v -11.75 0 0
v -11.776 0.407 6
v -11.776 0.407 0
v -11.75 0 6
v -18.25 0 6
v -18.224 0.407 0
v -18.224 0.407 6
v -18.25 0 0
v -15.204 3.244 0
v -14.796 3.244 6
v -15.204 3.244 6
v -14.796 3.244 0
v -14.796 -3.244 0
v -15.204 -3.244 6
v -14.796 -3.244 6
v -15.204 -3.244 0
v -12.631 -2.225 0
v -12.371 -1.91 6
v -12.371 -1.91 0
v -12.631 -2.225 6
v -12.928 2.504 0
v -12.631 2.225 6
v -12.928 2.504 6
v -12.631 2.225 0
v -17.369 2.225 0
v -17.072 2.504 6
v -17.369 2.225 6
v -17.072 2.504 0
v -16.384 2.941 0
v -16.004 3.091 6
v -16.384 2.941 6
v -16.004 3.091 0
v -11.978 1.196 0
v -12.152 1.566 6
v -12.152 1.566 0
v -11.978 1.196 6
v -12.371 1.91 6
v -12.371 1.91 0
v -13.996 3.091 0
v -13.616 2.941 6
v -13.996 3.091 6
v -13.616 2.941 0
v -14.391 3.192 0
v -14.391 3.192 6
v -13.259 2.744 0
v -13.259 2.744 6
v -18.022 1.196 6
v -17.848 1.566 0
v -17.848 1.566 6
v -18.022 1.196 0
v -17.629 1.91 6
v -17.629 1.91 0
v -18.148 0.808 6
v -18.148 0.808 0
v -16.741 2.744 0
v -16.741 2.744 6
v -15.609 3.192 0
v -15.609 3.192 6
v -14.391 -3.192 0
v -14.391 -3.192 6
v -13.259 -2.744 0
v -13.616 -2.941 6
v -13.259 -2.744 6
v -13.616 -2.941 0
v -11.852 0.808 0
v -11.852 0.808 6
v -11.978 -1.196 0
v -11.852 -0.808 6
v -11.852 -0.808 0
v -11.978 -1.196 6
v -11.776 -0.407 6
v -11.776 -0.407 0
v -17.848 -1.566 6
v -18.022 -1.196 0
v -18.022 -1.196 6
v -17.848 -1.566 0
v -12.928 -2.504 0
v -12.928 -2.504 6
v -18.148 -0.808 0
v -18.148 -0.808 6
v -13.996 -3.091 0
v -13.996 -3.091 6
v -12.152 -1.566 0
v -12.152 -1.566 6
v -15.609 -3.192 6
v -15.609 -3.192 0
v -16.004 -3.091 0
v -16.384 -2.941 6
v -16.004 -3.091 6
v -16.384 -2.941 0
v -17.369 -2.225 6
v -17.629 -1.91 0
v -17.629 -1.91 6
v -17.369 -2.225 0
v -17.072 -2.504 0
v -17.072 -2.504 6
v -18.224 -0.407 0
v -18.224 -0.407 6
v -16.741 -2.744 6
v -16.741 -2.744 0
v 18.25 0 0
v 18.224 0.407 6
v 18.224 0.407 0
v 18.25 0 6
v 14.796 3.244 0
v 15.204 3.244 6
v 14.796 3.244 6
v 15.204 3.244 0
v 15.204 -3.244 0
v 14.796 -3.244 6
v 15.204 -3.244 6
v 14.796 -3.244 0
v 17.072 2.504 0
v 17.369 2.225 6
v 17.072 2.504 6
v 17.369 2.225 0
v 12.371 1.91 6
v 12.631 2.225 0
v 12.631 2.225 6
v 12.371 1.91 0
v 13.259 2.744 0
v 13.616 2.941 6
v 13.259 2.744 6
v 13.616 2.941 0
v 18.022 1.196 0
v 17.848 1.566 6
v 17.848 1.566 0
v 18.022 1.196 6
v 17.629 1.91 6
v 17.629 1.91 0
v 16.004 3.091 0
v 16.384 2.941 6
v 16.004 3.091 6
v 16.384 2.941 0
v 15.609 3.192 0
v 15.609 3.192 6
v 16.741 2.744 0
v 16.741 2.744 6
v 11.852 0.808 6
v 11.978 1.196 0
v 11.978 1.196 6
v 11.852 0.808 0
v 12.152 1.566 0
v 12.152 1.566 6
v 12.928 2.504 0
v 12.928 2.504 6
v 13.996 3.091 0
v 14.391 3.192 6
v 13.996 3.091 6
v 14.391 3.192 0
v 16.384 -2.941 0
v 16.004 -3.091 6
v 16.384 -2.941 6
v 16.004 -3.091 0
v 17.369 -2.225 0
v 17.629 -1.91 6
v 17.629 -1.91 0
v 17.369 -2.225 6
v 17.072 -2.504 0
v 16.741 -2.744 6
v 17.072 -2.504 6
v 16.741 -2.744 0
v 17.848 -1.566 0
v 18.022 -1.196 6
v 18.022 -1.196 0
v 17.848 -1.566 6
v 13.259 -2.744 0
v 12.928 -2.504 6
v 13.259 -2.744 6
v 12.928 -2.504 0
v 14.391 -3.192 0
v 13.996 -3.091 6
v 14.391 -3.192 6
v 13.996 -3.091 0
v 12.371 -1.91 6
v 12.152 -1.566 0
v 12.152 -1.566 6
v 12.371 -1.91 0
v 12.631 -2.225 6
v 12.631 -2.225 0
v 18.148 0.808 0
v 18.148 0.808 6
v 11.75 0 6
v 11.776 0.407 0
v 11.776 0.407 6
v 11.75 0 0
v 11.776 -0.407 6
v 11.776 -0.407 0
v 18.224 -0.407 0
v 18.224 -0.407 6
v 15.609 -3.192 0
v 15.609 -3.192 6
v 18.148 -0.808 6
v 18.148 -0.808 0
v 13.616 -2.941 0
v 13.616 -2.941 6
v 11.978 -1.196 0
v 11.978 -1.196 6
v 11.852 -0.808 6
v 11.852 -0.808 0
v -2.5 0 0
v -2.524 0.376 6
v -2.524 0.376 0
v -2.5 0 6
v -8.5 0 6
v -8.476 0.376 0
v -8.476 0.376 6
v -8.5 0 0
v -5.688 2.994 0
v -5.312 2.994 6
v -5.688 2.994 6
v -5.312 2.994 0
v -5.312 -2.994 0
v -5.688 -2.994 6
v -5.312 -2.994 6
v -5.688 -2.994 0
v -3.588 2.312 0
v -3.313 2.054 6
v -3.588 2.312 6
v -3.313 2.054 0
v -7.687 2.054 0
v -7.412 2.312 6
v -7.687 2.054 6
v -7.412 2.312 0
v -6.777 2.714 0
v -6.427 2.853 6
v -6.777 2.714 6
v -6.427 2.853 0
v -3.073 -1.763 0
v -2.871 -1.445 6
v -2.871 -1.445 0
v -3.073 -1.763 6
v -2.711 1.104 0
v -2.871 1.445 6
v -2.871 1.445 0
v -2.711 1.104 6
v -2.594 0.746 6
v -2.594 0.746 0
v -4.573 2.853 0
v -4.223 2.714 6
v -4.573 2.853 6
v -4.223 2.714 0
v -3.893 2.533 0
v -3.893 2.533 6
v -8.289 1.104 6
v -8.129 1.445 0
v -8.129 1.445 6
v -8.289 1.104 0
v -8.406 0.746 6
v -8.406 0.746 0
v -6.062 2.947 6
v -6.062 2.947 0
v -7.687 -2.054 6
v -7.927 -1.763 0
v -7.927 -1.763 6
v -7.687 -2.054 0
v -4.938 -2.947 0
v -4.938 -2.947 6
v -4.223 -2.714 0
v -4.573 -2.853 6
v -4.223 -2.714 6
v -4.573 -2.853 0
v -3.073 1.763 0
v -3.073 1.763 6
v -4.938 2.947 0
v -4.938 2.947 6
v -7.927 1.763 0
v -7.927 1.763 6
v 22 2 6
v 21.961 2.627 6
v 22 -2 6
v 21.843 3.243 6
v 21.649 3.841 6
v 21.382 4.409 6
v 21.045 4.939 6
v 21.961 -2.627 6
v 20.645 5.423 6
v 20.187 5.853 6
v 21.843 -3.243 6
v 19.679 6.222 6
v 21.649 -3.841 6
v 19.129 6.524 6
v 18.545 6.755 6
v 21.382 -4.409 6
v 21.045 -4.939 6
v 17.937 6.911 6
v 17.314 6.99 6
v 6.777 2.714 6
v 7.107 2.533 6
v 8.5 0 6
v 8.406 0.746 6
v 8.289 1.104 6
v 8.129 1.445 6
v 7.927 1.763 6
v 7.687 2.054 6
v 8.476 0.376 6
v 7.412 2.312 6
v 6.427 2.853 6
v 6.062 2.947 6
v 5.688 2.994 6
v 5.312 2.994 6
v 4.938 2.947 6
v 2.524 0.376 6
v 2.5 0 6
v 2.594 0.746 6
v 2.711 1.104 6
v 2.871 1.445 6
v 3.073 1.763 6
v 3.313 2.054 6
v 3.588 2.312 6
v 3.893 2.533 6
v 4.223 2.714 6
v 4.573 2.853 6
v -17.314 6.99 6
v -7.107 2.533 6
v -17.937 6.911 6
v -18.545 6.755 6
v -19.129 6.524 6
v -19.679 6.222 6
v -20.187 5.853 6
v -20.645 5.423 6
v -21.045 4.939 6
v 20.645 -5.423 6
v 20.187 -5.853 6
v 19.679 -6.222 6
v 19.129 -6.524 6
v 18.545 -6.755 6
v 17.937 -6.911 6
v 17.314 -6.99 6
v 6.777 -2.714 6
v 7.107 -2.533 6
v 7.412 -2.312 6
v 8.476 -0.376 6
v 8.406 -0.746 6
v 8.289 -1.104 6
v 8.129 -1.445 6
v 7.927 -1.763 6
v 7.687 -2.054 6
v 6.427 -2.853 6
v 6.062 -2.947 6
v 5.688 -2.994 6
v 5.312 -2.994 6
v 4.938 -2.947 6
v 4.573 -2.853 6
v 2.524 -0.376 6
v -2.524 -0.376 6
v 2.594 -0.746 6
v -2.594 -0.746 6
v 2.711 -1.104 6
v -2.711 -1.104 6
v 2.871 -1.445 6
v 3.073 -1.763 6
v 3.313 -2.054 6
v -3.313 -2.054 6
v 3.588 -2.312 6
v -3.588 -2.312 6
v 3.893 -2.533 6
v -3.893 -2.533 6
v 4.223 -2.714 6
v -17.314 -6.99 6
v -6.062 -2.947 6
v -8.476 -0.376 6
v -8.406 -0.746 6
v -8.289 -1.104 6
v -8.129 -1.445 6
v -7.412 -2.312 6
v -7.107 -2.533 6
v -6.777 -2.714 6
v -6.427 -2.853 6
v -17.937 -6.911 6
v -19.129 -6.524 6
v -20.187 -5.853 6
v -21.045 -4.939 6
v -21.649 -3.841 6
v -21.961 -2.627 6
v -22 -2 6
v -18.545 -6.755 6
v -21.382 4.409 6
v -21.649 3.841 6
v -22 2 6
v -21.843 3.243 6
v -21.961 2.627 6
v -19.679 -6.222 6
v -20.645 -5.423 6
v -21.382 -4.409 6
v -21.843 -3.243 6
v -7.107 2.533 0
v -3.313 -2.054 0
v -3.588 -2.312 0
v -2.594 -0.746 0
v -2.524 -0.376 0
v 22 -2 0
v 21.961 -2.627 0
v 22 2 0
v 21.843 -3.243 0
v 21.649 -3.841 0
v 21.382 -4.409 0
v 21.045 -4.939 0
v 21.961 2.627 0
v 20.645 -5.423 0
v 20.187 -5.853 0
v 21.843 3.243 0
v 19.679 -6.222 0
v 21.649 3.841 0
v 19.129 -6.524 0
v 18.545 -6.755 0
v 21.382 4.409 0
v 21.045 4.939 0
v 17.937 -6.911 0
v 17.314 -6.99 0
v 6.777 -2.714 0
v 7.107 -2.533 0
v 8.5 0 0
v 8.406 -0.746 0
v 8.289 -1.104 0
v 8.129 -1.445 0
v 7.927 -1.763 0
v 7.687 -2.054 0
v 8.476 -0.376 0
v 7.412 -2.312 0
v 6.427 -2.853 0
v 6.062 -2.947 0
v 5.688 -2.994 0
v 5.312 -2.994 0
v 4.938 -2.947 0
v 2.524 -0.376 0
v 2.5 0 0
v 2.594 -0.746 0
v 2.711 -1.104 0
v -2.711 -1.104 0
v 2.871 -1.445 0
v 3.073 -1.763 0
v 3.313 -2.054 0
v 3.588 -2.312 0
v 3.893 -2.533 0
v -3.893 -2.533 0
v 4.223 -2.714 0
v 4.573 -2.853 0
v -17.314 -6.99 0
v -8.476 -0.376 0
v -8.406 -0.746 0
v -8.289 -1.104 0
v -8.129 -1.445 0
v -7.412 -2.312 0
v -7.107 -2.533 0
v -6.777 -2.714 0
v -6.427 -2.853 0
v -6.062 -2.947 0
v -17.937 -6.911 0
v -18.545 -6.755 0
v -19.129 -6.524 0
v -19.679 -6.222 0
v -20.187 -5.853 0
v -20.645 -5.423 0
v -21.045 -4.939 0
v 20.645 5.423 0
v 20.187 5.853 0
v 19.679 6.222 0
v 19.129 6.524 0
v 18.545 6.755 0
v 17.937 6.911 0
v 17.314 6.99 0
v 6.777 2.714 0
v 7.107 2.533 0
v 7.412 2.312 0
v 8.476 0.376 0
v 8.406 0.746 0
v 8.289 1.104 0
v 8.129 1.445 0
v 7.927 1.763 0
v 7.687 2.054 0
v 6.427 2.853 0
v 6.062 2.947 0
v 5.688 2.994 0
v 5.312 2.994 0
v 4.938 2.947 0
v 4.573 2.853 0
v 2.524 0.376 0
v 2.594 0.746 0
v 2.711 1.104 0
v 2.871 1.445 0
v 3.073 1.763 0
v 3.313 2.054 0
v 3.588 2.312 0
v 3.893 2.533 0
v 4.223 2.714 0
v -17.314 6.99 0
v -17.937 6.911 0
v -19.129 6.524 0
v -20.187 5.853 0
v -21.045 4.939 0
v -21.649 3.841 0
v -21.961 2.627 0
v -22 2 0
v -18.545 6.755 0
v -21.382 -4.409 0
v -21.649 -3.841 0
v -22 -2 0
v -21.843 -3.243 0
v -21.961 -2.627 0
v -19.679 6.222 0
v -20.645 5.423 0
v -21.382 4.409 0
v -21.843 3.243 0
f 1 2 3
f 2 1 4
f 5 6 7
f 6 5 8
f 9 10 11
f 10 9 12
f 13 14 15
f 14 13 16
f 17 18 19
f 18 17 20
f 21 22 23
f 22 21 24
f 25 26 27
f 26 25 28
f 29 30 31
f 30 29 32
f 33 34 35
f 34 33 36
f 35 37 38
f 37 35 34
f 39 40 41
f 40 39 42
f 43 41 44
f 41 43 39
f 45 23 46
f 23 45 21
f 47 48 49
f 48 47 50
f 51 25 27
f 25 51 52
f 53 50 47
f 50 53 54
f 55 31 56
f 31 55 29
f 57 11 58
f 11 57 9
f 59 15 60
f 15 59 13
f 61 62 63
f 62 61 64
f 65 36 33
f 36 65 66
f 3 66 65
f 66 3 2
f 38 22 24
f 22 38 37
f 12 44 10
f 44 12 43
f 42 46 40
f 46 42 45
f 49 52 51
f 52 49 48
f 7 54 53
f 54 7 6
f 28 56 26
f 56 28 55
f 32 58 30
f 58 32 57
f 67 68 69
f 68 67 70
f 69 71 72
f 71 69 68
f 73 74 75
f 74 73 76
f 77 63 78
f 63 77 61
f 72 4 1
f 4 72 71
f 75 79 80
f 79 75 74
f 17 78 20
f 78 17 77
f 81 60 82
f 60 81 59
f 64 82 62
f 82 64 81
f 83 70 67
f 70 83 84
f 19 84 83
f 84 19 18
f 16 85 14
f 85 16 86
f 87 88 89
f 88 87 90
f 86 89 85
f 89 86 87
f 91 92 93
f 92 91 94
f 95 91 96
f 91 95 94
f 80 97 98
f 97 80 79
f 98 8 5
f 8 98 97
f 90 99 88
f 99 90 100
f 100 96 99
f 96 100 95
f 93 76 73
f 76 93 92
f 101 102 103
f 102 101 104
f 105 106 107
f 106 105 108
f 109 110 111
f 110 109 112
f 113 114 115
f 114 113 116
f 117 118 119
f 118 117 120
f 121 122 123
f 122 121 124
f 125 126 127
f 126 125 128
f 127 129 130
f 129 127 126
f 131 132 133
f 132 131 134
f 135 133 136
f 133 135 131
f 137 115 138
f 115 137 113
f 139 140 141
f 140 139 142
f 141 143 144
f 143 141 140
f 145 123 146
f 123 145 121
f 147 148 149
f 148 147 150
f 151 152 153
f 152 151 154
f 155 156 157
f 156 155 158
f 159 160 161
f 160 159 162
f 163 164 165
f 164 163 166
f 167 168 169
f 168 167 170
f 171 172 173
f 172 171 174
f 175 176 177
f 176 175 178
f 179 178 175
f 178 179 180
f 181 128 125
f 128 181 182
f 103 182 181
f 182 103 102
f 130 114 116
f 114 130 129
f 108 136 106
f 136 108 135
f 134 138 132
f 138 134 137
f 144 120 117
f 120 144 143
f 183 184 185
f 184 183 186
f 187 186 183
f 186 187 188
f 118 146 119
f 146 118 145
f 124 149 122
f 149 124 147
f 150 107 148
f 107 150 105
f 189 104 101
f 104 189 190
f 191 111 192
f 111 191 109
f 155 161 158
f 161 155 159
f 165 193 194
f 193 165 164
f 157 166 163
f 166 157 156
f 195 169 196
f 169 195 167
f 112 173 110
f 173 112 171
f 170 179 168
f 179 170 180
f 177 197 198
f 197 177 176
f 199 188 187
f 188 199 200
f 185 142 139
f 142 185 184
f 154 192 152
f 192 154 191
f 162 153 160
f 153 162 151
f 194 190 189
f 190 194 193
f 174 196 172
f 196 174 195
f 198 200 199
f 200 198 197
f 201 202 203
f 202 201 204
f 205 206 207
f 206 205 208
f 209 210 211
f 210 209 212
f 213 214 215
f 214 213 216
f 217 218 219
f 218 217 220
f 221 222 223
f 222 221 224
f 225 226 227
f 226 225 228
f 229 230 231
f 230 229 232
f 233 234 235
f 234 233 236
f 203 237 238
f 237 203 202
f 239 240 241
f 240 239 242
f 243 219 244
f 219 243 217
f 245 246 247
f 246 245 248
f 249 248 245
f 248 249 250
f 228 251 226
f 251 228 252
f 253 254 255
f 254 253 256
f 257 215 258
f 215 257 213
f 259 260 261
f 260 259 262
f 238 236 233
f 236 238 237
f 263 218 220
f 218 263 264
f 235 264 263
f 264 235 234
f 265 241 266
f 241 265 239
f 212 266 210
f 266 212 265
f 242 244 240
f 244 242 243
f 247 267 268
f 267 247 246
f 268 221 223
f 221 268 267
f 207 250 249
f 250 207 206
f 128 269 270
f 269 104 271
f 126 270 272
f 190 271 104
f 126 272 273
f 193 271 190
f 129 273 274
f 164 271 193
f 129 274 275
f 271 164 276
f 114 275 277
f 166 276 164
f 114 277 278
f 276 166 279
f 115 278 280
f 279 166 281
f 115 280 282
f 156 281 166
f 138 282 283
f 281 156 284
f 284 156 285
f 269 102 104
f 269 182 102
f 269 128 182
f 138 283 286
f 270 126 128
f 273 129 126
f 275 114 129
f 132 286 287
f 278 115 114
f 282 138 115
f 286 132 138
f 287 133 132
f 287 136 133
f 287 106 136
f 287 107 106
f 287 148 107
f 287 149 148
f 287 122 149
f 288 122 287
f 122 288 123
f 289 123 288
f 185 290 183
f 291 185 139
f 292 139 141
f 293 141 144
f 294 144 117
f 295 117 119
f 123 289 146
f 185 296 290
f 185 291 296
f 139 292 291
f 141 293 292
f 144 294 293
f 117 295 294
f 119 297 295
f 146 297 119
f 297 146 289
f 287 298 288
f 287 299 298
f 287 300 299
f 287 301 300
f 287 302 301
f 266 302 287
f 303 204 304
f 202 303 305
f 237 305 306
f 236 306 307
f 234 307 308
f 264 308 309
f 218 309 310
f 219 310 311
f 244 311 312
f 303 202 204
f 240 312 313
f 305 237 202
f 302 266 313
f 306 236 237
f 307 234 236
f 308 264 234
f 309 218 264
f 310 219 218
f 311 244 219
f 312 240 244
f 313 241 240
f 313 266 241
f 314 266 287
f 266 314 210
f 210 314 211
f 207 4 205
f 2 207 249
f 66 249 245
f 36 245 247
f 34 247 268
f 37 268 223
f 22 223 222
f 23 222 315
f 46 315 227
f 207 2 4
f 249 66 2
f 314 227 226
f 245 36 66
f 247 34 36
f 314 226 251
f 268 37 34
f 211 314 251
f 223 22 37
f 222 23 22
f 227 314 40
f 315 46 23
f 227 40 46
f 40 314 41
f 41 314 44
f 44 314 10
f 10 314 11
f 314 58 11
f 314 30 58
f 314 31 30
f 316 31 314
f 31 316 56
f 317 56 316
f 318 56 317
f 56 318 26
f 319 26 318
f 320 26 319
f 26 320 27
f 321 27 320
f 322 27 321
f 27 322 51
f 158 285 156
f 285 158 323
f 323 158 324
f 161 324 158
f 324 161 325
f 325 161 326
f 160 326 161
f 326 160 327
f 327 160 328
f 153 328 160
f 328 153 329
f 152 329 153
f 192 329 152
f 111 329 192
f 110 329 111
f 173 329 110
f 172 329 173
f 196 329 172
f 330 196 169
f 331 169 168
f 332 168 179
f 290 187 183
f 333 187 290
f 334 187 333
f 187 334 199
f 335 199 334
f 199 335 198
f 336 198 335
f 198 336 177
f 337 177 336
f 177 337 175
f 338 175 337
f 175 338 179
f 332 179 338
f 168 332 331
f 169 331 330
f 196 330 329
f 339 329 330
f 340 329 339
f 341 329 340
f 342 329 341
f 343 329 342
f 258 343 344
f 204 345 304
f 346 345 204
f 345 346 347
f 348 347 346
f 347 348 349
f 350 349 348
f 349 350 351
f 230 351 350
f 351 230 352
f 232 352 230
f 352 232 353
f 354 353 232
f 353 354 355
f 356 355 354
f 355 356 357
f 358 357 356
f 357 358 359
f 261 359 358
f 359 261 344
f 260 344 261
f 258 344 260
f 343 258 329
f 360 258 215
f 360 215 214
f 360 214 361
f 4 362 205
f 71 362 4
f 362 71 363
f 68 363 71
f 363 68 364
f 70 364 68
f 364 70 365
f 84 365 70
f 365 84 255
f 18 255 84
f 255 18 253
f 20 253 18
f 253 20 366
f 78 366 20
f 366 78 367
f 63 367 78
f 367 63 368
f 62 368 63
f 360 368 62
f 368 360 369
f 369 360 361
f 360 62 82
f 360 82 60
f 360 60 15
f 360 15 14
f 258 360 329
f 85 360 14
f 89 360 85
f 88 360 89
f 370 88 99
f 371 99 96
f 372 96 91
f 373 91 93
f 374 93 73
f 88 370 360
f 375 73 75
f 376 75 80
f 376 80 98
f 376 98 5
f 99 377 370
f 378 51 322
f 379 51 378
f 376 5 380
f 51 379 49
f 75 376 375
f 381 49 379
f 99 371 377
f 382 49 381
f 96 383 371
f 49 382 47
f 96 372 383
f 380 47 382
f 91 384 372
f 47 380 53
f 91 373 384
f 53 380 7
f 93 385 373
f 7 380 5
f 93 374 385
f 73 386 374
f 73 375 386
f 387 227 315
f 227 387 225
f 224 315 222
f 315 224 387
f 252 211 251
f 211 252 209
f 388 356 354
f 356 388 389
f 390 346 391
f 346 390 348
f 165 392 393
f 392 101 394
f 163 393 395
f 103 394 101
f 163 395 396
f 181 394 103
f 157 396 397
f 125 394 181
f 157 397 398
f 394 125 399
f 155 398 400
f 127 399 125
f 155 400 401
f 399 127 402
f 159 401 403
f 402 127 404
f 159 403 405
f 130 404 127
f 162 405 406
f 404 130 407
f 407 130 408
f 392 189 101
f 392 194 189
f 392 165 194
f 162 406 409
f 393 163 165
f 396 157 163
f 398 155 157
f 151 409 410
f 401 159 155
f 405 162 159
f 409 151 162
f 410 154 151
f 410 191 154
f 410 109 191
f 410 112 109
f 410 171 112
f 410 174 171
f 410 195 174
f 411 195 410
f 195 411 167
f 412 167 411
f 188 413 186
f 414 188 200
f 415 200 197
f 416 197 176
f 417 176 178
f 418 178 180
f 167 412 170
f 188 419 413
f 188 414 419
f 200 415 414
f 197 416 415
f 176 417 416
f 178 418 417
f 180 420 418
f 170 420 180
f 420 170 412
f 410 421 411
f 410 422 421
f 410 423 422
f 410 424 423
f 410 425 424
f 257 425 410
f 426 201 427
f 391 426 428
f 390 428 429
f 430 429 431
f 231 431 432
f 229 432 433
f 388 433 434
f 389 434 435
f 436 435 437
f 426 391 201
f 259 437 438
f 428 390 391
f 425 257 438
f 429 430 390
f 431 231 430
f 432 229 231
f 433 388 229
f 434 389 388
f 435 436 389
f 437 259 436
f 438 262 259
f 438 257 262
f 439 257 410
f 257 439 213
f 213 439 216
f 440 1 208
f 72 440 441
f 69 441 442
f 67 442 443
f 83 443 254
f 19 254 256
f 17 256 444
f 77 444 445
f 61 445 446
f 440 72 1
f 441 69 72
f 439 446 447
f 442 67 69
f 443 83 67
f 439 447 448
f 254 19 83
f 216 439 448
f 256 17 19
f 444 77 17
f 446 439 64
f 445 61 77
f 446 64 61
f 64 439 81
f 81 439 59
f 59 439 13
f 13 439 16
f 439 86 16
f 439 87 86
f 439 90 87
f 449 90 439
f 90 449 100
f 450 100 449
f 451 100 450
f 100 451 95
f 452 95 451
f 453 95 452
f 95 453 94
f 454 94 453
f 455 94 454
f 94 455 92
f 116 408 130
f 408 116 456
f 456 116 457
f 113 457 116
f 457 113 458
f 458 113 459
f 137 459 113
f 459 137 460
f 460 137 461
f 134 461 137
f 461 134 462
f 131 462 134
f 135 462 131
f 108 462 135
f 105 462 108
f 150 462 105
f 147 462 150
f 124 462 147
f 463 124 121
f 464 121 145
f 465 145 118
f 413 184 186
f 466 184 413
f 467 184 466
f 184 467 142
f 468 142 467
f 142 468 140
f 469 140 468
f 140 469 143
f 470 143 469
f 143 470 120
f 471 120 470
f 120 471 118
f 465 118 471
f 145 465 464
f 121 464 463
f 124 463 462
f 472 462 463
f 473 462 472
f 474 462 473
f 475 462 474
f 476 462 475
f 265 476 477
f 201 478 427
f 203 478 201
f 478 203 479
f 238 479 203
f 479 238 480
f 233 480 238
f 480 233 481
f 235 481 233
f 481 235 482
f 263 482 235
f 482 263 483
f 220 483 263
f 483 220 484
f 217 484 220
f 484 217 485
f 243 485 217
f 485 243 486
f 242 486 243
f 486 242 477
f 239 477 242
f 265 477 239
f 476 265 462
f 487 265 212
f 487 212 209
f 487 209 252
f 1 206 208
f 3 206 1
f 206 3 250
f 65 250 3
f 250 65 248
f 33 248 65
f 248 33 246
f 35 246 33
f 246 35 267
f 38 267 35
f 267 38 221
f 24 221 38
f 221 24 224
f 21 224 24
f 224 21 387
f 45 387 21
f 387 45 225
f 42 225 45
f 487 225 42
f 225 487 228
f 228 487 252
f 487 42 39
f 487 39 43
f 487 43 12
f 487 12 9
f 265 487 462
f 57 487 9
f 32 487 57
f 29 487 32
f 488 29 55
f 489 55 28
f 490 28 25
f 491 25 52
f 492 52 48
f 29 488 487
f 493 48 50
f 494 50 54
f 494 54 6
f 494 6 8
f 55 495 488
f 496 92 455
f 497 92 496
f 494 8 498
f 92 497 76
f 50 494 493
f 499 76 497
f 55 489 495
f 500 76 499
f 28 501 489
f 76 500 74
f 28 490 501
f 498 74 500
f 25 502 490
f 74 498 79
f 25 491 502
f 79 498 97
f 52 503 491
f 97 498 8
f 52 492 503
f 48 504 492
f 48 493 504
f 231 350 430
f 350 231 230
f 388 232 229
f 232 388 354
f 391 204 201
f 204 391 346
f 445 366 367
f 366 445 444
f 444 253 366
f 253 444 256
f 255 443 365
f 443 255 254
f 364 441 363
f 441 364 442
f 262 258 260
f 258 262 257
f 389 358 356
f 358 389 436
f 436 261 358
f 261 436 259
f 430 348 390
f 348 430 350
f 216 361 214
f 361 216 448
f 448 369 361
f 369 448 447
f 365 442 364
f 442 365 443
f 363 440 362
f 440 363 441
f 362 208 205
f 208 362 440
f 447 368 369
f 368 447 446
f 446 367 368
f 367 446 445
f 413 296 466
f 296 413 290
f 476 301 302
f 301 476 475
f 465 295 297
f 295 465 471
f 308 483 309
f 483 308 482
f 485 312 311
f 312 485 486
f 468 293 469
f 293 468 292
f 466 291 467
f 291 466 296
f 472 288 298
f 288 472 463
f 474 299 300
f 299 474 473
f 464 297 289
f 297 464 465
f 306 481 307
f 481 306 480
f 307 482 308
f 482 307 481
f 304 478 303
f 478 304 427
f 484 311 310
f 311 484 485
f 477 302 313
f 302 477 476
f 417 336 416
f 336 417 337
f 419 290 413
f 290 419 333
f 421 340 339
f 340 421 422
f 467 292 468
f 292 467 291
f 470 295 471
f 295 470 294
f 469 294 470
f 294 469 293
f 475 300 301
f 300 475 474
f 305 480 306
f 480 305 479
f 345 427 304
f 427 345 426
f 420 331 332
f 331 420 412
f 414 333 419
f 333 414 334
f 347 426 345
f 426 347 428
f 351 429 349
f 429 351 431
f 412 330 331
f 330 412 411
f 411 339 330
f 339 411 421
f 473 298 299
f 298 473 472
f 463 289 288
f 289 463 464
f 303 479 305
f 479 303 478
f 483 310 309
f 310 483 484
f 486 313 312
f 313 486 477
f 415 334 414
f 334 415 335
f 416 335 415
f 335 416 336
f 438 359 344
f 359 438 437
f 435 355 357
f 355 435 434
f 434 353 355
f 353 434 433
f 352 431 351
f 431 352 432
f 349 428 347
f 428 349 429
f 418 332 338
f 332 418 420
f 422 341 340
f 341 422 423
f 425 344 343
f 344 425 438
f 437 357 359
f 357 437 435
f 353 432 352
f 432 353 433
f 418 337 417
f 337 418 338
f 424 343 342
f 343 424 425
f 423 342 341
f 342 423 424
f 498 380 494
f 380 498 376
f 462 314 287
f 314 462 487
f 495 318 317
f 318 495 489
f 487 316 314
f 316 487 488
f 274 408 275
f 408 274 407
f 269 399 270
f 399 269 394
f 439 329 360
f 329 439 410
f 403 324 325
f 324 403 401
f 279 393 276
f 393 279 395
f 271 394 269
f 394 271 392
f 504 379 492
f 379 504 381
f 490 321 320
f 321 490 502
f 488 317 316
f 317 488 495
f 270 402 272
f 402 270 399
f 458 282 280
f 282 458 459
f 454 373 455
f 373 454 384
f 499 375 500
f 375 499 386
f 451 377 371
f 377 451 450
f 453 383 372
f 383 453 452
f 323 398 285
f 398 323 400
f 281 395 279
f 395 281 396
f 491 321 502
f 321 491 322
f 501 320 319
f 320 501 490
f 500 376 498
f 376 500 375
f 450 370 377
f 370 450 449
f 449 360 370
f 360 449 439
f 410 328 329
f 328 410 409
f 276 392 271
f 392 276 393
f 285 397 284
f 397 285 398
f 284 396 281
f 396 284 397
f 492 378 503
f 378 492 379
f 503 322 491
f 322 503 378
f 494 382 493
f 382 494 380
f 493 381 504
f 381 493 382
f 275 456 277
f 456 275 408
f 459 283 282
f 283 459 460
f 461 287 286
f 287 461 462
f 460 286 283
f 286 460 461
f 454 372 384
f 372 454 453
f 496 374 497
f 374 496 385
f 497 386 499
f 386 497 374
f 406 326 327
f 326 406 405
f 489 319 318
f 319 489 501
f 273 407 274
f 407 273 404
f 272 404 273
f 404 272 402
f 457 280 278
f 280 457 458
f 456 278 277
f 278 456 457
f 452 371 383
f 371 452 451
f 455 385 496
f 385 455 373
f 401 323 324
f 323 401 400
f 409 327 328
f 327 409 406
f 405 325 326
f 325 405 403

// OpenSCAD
$fn = 50;


difference() {
	union() {
		hull() {
			translate(v = [-17.0000000000, 2.0000000000, 0]) {
				cylinder(h = 6, r = 5);
			}
			translate(v = [17.0000000000, 2.0000000000, 0]) {
				cylinder(h = 6, r = 5);
			}
			translate(v = [-17.0000000000, -2.0000000000, 0]) {
				cylinder(h = 6, r = 5);
			}
			translate(v = [17.0000000000, -2.0000000000, 0]) {
				cylinder(h = 6, r = 5);
			}
		}
	}
	union() {
		#translate(v = [-15.0000000000, 0.0000000000, 0]) {
			cylinder(h = 6, r = 3.2500000000);
		}
		#translate(v = [15.0000000000, 0.0000000000, 0]) {
			cylinder(h = 6, r = 3.2500000000);
		}
		#translate(v = [-15.0000000000, 0.0000000000, -100.0000000000]) {
			cylinder(h = 200, r = 3.2500000000);
		}
		#translate(v = [-15.0000000000, 0.0000000000, -100.0000000000]) {
			cylinder(h = 200, r = 3.2500000000);
		}
		#translate(v = [15.0000000000, 0.0000000000, -100.0000000000]) {
			cylinder(h = 200, r = 3.2500000000);
		}
		#translate(v = [15.0000000000, 0.0000000000, -100.0000000000]) {
			cylinder(h = 200, r = 3.2500000000);
		}
		#translate(v = [-15.0000000000, 0.0000000000, 0]) {
			cylinder(h = 6, r = 1.8000000000);
		}
		#translate(v = [15.0000000000, 0.0000000000, 0]) {
			cylinder(h = 6, r = 1.8000000000);
		}
		#translate(v = [-15.0000000000, 0.0000000000, 0]) {
			cylinder(h = 6, r = 1.8000000000);
		}
		#translate(v = [15.0000000000, 0.0000000000, 0]) {
			cylinder(h = 6, r = 1.8000000000);
		}
		#translate(v = [-15.0000000000, 0.0000000000, 0]) {
			cylinder(h = 6, r = 1.8000000000);
		}
		#translate(v = [15.0000000000, 0.0000000000, 0]) {
			cylinder(h = 6, r = 1.8000000000);
		}
		#translate(v = [-5.5000000000, 0, 0]) {
			cylinder(h = 6, r = 3.0000000000);
		}
		#translate(v = [5.5000000000, 0, 0]) {
			cylinder(h = 6, r = 3.0000000000);
		}
	}
}
